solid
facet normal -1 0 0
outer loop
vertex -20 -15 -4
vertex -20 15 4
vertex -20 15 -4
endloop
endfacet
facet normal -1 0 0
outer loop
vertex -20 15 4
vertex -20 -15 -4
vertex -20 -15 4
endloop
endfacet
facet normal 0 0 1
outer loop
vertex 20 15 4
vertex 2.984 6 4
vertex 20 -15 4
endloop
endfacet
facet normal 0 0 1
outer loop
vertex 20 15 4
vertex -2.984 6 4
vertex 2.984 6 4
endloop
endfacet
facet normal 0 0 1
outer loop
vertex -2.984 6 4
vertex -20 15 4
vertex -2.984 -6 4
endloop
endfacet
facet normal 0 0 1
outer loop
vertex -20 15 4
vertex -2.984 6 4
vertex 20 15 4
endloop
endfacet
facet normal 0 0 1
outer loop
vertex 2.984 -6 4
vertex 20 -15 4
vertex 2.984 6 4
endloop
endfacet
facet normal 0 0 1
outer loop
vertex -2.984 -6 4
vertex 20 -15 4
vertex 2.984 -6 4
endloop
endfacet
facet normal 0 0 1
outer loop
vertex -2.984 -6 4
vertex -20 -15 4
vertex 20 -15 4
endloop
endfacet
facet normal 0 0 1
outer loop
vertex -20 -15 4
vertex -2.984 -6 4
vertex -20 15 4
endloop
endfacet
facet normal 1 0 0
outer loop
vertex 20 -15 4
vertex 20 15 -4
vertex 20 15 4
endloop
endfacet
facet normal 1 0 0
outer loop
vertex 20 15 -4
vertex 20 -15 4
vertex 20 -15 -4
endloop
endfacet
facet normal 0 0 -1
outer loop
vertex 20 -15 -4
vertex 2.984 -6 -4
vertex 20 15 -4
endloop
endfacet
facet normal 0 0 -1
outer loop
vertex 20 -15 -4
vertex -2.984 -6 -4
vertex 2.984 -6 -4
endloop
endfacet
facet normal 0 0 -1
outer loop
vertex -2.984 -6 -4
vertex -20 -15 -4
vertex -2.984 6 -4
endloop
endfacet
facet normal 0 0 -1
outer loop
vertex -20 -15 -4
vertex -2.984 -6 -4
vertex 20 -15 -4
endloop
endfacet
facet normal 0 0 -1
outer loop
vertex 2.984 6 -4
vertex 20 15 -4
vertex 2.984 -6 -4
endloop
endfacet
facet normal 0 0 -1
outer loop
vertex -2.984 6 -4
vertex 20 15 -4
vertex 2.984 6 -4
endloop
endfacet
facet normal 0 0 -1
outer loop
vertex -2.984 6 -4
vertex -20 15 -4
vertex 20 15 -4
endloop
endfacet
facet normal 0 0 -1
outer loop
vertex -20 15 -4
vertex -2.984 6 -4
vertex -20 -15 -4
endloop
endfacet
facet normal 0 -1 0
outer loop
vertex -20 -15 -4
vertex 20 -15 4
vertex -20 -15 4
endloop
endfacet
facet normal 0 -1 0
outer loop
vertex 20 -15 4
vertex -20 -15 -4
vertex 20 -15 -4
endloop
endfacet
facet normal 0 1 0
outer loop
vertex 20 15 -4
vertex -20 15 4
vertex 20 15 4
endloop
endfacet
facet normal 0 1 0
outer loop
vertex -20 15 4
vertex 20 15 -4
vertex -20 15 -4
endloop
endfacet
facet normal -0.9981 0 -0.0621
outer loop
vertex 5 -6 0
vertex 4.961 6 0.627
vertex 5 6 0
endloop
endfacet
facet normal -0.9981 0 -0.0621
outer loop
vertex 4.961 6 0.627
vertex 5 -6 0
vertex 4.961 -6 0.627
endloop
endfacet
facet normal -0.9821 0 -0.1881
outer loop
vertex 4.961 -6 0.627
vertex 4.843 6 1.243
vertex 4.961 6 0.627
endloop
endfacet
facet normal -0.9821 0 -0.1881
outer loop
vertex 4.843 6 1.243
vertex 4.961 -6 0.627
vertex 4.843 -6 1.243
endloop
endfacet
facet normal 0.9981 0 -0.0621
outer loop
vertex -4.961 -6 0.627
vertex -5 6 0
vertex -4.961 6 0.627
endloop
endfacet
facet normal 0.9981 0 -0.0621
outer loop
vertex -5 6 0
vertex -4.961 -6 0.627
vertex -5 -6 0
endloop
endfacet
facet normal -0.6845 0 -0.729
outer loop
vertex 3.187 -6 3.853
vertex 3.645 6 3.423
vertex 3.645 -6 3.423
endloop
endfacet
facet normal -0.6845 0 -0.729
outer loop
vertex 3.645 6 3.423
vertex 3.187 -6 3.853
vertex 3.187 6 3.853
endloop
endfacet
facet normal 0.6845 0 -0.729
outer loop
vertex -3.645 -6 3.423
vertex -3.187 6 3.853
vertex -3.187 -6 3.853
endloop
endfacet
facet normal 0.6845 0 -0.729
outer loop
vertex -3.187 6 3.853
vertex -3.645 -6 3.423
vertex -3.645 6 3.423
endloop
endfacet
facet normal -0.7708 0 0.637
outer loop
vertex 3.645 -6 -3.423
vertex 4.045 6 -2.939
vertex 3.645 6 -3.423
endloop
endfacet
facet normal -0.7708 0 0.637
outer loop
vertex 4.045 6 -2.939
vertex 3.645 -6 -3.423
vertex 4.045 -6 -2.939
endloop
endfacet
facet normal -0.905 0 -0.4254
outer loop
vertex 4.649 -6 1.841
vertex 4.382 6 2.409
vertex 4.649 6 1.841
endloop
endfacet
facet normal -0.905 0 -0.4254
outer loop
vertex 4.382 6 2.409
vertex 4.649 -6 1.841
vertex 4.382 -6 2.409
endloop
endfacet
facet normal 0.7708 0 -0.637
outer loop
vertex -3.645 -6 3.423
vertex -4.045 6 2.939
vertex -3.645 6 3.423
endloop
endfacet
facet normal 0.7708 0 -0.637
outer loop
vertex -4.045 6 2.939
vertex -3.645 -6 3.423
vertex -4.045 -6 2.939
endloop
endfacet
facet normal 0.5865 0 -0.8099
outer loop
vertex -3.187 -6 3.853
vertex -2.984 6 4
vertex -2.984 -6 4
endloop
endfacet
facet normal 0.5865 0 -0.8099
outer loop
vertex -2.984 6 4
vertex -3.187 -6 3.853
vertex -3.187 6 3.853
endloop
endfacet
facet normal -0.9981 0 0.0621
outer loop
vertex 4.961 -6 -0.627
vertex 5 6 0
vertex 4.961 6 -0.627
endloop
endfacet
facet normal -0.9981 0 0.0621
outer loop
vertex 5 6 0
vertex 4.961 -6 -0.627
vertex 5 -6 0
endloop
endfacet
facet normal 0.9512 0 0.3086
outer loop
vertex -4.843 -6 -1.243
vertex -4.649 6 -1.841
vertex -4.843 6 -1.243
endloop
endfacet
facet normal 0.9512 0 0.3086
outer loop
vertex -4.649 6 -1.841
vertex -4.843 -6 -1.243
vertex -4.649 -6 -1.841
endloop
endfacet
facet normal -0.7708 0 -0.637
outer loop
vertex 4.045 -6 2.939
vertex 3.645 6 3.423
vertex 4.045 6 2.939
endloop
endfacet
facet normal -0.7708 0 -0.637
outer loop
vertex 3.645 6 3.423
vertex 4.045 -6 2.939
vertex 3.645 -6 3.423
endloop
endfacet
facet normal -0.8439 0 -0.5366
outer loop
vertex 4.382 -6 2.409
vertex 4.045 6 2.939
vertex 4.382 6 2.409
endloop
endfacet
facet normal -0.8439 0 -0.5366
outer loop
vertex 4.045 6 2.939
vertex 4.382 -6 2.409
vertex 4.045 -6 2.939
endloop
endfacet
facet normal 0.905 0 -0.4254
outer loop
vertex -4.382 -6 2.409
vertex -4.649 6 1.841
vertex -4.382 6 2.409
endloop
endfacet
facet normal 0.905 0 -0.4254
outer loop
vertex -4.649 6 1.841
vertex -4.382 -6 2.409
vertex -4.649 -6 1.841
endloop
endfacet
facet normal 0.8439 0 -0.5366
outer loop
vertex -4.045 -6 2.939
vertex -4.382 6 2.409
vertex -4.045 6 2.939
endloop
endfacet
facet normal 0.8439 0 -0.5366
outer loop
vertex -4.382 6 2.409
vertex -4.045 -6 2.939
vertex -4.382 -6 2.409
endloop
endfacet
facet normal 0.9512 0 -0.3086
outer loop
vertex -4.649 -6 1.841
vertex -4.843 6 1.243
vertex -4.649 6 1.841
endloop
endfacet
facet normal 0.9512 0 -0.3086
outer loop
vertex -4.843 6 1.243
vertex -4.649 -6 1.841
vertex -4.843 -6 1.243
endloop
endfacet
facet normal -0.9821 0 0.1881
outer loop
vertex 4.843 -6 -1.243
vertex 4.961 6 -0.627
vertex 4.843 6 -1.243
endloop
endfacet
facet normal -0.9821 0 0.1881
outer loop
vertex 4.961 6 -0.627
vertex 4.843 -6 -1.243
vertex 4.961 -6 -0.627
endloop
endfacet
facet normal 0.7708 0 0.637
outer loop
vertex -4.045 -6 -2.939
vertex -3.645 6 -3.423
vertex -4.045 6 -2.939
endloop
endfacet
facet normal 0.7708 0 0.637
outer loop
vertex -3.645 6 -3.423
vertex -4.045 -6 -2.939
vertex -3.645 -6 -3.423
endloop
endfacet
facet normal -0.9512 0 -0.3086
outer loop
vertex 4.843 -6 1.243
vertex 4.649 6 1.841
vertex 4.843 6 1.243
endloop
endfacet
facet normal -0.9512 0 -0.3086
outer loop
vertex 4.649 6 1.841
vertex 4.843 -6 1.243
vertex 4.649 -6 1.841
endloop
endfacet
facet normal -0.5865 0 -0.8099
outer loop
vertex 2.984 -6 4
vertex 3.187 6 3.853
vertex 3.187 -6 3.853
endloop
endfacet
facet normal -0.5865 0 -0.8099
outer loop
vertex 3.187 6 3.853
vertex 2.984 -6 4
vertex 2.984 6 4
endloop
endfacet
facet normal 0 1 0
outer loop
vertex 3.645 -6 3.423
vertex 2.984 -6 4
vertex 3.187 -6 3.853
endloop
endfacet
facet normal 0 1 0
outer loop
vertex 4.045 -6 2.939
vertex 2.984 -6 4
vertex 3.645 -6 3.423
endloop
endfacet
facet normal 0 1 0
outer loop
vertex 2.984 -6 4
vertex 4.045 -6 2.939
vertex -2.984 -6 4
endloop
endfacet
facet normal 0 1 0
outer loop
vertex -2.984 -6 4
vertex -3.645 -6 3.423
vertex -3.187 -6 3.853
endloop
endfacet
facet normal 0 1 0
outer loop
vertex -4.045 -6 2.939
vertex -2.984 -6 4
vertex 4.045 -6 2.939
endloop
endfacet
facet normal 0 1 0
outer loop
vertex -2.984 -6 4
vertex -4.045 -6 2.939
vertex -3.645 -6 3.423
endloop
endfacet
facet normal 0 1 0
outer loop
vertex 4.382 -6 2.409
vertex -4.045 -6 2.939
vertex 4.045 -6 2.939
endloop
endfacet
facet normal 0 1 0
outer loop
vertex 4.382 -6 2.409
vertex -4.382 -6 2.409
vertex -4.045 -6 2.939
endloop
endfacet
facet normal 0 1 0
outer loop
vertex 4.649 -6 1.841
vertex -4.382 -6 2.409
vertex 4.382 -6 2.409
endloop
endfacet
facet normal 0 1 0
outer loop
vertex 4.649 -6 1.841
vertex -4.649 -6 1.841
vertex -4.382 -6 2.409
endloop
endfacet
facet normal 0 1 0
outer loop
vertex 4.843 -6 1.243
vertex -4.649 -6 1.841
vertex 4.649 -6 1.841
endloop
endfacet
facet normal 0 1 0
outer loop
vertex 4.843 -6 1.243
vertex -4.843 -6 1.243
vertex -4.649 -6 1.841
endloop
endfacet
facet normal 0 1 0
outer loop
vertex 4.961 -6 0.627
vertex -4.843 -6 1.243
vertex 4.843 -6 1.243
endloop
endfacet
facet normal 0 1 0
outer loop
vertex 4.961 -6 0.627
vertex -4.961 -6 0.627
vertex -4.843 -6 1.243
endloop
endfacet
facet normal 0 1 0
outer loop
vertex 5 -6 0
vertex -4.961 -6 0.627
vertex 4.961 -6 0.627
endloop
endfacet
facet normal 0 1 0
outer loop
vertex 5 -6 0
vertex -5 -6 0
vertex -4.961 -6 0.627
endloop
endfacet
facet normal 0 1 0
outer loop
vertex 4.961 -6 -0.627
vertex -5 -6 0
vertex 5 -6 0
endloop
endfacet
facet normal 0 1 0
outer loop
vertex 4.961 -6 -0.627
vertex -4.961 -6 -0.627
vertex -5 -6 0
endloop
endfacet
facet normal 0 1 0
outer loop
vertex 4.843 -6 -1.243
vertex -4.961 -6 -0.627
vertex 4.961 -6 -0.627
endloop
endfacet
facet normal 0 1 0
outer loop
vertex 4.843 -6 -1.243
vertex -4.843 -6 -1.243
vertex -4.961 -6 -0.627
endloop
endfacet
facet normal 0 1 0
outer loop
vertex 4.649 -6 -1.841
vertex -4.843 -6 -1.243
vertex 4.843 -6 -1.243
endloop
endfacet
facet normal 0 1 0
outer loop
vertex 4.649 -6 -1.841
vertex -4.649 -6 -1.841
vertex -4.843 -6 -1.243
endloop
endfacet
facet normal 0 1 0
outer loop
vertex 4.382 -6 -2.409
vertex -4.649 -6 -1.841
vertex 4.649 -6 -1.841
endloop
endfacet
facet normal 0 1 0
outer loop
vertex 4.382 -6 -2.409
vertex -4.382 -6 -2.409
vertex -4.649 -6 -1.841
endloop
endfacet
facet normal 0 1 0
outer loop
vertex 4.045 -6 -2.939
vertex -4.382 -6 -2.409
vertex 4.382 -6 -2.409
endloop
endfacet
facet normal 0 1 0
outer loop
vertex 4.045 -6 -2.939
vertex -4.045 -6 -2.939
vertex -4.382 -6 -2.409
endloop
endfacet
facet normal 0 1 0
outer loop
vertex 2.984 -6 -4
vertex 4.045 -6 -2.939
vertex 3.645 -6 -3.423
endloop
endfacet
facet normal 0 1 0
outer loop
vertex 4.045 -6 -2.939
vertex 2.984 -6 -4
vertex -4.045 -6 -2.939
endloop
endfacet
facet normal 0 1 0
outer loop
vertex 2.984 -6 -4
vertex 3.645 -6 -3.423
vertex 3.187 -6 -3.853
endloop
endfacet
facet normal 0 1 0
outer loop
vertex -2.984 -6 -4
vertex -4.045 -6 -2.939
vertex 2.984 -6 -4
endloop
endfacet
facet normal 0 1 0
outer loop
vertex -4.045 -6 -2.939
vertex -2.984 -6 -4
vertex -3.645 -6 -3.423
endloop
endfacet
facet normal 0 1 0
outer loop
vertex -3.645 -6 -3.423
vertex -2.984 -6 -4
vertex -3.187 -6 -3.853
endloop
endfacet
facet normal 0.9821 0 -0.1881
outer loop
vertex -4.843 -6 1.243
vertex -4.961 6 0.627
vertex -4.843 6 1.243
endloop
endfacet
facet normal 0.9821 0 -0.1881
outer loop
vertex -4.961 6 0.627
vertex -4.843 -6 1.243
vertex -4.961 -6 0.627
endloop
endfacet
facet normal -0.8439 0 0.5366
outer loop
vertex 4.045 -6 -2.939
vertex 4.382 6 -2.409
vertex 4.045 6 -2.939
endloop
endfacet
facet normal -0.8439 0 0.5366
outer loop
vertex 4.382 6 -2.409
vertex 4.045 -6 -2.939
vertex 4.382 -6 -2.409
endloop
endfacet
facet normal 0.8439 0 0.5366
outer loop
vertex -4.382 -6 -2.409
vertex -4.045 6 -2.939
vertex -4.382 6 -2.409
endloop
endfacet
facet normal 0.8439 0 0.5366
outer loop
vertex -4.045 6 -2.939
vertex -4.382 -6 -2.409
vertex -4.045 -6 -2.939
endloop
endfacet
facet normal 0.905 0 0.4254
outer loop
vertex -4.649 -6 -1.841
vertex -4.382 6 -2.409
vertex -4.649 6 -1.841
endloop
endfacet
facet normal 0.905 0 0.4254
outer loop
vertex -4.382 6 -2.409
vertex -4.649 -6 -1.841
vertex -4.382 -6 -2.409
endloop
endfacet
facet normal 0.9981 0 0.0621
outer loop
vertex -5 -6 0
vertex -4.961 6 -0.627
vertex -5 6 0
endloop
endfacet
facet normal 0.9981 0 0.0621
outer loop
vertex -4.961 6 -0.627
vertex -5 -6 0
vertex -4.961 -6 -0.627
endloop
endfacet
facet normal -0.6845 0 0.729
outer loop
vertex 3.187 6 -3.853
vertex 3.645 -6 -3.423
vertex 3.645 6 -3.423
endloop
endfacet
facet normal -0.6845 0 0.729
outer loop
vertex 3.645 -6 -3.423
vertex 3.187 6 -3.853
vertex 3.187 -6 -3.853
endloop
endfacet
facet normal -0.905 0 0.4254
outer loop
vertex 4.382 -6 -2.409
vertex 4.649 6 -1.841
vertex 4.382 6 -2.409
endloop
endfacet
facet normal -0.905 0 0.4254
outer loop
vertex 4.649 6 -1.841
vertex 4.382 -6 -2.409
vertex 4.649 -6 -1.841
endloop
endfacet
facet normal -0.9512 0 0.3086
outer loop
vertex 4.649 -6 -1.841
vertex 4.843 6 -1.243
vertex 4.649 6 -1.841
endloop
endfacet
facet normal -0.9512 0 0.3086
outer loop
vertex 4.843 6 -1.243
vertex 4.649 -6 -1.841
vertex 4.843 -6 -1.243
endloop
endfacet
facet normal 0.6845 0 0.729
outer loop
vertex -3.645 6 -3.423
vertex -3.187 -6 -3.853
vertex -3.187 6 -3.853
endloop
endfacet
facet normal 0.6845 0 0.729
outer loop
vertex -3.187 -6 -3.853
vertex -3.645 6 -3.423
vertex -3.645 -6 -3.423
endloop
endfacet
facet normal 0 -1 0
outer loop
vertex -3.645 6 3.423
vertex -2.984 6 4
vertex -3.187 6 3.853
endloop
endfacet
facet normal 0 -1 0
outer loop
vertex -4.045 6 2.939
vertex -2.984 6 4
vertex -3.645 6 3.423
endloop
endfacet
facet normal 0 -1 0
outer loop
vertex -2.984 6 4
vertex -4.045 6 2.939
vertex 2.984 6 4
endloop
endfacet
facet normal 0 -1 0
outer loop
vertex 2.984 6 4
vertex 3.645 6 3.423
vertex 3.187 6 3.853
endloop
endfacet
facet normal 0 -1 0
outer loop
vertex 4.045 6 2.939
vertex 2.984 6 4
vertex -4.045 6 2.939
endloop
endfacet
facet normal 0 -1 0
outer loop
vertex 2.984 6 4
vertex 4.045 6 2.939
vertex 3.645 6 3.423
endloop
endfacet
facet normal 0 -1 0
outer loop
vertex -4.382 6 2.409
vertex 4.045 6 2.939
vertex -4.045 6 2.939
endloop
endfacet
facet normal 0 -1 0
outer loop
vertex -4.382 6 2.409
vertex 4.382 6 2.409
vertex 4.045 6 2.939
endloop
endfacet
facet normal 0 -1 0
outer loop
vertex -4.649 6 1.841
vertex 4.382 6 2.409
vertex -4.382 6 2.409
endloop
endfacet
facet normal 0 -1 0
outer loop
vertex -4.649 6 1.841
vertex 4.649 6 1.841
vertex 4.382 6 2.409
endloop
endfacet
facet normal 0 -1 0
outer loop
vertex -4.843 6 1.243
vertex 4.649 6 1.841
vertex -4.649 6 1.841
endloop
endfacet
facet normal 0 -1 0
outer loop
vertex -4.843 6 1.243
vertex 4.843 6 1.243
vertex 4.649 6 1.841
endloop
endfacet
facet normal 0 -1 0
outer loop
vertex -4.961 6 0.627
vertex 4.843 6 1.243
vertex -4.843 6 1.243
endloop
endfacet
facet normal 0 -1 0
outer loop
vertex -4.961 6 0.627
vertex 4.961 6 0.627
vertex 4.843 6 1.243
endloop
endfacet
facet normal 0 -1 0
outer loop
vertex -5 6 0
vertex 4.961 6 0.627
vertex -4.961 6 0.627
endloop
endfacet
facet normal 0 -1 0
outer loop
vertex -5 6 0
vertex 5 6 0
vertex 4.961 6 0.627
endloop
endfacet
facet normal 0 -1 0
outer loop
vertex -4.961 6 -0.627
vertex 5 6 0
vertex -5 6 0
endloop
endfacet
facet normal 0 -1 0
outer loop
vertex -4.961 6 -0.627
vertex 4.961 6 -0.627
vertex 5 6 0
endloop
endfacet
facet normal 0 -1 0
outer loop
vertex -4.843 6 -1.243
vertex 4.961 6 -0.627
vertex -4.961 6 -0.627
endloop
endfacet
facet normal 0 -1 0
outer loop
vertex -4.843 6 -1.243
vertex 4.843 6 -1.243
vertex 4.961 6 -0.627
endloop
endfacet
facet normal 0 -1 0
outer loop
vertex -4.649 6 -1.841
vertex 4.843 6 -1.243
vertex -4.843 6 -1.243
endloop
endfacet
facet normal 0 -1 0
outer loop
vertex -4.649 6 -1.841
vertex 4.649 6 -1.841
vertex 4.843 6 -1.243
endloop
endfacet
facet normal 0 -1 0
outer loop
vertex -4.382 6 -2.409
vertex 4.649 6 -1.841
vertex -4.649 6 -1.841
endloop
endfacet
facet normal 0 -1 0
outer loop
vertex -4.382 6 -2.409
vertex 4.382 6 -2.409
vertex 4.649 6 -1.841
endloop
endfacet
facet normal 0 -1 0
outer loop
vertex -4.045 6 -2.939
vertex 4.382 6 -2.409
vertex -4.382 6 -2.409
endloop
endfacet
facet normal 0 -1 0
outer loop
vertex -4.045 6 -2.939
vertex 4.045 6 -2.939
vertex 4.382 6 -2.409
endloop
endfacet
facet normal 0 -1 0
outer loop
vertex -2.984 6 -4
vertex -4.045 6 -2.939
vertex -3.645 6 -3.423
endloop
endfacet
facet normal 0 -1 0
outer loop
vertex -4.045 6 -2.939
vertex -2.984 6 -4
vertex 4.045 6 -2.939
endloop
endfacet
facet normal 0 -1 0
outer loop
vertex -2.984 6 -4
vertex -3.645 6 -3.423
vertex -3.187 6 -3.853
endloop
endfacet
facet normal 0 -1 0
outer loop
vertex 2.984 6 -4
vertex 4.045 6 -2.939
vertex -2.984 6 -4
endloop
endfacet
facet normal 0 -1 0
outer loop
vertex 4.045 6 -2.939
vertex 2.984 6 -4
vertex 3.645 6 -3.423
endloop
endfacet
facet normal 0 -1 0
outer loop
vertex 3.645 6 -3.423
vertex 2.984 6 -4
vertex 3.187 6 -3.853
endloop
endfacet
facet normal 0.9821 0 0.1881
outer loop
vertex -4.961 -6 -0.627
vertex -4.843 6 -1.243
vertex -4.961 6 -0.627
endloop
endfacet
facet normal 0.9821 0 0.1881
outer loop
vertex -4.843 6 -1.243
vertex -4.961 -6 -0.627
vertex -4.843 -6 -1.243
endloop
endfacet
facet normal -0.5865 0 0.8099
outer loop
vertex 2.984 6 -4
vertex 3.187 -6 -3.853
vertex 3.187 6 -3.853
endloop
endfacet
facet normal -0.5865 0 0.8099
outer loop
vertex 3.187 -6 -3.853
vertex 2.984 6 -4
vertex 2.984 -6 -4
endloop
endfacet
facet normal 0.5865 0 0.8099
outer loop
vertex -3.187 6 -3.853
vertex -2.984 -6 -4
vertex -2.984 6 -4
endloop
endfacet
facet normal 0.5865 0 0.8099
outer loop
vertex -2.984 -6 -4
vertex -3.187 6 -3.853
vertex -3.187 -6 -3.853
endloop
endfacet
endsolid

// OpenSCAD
// Rectangular plate with centered hole
difference() {
    cube([40, 30, 8], center = true);  // Main plate body
    rotate([90, 0, 0])                    // Align cylinder vertically (Z)
        cylinder(d = 10, h = 12, center = true, $fn = 50);  // Central hole aligned along X axis
}
